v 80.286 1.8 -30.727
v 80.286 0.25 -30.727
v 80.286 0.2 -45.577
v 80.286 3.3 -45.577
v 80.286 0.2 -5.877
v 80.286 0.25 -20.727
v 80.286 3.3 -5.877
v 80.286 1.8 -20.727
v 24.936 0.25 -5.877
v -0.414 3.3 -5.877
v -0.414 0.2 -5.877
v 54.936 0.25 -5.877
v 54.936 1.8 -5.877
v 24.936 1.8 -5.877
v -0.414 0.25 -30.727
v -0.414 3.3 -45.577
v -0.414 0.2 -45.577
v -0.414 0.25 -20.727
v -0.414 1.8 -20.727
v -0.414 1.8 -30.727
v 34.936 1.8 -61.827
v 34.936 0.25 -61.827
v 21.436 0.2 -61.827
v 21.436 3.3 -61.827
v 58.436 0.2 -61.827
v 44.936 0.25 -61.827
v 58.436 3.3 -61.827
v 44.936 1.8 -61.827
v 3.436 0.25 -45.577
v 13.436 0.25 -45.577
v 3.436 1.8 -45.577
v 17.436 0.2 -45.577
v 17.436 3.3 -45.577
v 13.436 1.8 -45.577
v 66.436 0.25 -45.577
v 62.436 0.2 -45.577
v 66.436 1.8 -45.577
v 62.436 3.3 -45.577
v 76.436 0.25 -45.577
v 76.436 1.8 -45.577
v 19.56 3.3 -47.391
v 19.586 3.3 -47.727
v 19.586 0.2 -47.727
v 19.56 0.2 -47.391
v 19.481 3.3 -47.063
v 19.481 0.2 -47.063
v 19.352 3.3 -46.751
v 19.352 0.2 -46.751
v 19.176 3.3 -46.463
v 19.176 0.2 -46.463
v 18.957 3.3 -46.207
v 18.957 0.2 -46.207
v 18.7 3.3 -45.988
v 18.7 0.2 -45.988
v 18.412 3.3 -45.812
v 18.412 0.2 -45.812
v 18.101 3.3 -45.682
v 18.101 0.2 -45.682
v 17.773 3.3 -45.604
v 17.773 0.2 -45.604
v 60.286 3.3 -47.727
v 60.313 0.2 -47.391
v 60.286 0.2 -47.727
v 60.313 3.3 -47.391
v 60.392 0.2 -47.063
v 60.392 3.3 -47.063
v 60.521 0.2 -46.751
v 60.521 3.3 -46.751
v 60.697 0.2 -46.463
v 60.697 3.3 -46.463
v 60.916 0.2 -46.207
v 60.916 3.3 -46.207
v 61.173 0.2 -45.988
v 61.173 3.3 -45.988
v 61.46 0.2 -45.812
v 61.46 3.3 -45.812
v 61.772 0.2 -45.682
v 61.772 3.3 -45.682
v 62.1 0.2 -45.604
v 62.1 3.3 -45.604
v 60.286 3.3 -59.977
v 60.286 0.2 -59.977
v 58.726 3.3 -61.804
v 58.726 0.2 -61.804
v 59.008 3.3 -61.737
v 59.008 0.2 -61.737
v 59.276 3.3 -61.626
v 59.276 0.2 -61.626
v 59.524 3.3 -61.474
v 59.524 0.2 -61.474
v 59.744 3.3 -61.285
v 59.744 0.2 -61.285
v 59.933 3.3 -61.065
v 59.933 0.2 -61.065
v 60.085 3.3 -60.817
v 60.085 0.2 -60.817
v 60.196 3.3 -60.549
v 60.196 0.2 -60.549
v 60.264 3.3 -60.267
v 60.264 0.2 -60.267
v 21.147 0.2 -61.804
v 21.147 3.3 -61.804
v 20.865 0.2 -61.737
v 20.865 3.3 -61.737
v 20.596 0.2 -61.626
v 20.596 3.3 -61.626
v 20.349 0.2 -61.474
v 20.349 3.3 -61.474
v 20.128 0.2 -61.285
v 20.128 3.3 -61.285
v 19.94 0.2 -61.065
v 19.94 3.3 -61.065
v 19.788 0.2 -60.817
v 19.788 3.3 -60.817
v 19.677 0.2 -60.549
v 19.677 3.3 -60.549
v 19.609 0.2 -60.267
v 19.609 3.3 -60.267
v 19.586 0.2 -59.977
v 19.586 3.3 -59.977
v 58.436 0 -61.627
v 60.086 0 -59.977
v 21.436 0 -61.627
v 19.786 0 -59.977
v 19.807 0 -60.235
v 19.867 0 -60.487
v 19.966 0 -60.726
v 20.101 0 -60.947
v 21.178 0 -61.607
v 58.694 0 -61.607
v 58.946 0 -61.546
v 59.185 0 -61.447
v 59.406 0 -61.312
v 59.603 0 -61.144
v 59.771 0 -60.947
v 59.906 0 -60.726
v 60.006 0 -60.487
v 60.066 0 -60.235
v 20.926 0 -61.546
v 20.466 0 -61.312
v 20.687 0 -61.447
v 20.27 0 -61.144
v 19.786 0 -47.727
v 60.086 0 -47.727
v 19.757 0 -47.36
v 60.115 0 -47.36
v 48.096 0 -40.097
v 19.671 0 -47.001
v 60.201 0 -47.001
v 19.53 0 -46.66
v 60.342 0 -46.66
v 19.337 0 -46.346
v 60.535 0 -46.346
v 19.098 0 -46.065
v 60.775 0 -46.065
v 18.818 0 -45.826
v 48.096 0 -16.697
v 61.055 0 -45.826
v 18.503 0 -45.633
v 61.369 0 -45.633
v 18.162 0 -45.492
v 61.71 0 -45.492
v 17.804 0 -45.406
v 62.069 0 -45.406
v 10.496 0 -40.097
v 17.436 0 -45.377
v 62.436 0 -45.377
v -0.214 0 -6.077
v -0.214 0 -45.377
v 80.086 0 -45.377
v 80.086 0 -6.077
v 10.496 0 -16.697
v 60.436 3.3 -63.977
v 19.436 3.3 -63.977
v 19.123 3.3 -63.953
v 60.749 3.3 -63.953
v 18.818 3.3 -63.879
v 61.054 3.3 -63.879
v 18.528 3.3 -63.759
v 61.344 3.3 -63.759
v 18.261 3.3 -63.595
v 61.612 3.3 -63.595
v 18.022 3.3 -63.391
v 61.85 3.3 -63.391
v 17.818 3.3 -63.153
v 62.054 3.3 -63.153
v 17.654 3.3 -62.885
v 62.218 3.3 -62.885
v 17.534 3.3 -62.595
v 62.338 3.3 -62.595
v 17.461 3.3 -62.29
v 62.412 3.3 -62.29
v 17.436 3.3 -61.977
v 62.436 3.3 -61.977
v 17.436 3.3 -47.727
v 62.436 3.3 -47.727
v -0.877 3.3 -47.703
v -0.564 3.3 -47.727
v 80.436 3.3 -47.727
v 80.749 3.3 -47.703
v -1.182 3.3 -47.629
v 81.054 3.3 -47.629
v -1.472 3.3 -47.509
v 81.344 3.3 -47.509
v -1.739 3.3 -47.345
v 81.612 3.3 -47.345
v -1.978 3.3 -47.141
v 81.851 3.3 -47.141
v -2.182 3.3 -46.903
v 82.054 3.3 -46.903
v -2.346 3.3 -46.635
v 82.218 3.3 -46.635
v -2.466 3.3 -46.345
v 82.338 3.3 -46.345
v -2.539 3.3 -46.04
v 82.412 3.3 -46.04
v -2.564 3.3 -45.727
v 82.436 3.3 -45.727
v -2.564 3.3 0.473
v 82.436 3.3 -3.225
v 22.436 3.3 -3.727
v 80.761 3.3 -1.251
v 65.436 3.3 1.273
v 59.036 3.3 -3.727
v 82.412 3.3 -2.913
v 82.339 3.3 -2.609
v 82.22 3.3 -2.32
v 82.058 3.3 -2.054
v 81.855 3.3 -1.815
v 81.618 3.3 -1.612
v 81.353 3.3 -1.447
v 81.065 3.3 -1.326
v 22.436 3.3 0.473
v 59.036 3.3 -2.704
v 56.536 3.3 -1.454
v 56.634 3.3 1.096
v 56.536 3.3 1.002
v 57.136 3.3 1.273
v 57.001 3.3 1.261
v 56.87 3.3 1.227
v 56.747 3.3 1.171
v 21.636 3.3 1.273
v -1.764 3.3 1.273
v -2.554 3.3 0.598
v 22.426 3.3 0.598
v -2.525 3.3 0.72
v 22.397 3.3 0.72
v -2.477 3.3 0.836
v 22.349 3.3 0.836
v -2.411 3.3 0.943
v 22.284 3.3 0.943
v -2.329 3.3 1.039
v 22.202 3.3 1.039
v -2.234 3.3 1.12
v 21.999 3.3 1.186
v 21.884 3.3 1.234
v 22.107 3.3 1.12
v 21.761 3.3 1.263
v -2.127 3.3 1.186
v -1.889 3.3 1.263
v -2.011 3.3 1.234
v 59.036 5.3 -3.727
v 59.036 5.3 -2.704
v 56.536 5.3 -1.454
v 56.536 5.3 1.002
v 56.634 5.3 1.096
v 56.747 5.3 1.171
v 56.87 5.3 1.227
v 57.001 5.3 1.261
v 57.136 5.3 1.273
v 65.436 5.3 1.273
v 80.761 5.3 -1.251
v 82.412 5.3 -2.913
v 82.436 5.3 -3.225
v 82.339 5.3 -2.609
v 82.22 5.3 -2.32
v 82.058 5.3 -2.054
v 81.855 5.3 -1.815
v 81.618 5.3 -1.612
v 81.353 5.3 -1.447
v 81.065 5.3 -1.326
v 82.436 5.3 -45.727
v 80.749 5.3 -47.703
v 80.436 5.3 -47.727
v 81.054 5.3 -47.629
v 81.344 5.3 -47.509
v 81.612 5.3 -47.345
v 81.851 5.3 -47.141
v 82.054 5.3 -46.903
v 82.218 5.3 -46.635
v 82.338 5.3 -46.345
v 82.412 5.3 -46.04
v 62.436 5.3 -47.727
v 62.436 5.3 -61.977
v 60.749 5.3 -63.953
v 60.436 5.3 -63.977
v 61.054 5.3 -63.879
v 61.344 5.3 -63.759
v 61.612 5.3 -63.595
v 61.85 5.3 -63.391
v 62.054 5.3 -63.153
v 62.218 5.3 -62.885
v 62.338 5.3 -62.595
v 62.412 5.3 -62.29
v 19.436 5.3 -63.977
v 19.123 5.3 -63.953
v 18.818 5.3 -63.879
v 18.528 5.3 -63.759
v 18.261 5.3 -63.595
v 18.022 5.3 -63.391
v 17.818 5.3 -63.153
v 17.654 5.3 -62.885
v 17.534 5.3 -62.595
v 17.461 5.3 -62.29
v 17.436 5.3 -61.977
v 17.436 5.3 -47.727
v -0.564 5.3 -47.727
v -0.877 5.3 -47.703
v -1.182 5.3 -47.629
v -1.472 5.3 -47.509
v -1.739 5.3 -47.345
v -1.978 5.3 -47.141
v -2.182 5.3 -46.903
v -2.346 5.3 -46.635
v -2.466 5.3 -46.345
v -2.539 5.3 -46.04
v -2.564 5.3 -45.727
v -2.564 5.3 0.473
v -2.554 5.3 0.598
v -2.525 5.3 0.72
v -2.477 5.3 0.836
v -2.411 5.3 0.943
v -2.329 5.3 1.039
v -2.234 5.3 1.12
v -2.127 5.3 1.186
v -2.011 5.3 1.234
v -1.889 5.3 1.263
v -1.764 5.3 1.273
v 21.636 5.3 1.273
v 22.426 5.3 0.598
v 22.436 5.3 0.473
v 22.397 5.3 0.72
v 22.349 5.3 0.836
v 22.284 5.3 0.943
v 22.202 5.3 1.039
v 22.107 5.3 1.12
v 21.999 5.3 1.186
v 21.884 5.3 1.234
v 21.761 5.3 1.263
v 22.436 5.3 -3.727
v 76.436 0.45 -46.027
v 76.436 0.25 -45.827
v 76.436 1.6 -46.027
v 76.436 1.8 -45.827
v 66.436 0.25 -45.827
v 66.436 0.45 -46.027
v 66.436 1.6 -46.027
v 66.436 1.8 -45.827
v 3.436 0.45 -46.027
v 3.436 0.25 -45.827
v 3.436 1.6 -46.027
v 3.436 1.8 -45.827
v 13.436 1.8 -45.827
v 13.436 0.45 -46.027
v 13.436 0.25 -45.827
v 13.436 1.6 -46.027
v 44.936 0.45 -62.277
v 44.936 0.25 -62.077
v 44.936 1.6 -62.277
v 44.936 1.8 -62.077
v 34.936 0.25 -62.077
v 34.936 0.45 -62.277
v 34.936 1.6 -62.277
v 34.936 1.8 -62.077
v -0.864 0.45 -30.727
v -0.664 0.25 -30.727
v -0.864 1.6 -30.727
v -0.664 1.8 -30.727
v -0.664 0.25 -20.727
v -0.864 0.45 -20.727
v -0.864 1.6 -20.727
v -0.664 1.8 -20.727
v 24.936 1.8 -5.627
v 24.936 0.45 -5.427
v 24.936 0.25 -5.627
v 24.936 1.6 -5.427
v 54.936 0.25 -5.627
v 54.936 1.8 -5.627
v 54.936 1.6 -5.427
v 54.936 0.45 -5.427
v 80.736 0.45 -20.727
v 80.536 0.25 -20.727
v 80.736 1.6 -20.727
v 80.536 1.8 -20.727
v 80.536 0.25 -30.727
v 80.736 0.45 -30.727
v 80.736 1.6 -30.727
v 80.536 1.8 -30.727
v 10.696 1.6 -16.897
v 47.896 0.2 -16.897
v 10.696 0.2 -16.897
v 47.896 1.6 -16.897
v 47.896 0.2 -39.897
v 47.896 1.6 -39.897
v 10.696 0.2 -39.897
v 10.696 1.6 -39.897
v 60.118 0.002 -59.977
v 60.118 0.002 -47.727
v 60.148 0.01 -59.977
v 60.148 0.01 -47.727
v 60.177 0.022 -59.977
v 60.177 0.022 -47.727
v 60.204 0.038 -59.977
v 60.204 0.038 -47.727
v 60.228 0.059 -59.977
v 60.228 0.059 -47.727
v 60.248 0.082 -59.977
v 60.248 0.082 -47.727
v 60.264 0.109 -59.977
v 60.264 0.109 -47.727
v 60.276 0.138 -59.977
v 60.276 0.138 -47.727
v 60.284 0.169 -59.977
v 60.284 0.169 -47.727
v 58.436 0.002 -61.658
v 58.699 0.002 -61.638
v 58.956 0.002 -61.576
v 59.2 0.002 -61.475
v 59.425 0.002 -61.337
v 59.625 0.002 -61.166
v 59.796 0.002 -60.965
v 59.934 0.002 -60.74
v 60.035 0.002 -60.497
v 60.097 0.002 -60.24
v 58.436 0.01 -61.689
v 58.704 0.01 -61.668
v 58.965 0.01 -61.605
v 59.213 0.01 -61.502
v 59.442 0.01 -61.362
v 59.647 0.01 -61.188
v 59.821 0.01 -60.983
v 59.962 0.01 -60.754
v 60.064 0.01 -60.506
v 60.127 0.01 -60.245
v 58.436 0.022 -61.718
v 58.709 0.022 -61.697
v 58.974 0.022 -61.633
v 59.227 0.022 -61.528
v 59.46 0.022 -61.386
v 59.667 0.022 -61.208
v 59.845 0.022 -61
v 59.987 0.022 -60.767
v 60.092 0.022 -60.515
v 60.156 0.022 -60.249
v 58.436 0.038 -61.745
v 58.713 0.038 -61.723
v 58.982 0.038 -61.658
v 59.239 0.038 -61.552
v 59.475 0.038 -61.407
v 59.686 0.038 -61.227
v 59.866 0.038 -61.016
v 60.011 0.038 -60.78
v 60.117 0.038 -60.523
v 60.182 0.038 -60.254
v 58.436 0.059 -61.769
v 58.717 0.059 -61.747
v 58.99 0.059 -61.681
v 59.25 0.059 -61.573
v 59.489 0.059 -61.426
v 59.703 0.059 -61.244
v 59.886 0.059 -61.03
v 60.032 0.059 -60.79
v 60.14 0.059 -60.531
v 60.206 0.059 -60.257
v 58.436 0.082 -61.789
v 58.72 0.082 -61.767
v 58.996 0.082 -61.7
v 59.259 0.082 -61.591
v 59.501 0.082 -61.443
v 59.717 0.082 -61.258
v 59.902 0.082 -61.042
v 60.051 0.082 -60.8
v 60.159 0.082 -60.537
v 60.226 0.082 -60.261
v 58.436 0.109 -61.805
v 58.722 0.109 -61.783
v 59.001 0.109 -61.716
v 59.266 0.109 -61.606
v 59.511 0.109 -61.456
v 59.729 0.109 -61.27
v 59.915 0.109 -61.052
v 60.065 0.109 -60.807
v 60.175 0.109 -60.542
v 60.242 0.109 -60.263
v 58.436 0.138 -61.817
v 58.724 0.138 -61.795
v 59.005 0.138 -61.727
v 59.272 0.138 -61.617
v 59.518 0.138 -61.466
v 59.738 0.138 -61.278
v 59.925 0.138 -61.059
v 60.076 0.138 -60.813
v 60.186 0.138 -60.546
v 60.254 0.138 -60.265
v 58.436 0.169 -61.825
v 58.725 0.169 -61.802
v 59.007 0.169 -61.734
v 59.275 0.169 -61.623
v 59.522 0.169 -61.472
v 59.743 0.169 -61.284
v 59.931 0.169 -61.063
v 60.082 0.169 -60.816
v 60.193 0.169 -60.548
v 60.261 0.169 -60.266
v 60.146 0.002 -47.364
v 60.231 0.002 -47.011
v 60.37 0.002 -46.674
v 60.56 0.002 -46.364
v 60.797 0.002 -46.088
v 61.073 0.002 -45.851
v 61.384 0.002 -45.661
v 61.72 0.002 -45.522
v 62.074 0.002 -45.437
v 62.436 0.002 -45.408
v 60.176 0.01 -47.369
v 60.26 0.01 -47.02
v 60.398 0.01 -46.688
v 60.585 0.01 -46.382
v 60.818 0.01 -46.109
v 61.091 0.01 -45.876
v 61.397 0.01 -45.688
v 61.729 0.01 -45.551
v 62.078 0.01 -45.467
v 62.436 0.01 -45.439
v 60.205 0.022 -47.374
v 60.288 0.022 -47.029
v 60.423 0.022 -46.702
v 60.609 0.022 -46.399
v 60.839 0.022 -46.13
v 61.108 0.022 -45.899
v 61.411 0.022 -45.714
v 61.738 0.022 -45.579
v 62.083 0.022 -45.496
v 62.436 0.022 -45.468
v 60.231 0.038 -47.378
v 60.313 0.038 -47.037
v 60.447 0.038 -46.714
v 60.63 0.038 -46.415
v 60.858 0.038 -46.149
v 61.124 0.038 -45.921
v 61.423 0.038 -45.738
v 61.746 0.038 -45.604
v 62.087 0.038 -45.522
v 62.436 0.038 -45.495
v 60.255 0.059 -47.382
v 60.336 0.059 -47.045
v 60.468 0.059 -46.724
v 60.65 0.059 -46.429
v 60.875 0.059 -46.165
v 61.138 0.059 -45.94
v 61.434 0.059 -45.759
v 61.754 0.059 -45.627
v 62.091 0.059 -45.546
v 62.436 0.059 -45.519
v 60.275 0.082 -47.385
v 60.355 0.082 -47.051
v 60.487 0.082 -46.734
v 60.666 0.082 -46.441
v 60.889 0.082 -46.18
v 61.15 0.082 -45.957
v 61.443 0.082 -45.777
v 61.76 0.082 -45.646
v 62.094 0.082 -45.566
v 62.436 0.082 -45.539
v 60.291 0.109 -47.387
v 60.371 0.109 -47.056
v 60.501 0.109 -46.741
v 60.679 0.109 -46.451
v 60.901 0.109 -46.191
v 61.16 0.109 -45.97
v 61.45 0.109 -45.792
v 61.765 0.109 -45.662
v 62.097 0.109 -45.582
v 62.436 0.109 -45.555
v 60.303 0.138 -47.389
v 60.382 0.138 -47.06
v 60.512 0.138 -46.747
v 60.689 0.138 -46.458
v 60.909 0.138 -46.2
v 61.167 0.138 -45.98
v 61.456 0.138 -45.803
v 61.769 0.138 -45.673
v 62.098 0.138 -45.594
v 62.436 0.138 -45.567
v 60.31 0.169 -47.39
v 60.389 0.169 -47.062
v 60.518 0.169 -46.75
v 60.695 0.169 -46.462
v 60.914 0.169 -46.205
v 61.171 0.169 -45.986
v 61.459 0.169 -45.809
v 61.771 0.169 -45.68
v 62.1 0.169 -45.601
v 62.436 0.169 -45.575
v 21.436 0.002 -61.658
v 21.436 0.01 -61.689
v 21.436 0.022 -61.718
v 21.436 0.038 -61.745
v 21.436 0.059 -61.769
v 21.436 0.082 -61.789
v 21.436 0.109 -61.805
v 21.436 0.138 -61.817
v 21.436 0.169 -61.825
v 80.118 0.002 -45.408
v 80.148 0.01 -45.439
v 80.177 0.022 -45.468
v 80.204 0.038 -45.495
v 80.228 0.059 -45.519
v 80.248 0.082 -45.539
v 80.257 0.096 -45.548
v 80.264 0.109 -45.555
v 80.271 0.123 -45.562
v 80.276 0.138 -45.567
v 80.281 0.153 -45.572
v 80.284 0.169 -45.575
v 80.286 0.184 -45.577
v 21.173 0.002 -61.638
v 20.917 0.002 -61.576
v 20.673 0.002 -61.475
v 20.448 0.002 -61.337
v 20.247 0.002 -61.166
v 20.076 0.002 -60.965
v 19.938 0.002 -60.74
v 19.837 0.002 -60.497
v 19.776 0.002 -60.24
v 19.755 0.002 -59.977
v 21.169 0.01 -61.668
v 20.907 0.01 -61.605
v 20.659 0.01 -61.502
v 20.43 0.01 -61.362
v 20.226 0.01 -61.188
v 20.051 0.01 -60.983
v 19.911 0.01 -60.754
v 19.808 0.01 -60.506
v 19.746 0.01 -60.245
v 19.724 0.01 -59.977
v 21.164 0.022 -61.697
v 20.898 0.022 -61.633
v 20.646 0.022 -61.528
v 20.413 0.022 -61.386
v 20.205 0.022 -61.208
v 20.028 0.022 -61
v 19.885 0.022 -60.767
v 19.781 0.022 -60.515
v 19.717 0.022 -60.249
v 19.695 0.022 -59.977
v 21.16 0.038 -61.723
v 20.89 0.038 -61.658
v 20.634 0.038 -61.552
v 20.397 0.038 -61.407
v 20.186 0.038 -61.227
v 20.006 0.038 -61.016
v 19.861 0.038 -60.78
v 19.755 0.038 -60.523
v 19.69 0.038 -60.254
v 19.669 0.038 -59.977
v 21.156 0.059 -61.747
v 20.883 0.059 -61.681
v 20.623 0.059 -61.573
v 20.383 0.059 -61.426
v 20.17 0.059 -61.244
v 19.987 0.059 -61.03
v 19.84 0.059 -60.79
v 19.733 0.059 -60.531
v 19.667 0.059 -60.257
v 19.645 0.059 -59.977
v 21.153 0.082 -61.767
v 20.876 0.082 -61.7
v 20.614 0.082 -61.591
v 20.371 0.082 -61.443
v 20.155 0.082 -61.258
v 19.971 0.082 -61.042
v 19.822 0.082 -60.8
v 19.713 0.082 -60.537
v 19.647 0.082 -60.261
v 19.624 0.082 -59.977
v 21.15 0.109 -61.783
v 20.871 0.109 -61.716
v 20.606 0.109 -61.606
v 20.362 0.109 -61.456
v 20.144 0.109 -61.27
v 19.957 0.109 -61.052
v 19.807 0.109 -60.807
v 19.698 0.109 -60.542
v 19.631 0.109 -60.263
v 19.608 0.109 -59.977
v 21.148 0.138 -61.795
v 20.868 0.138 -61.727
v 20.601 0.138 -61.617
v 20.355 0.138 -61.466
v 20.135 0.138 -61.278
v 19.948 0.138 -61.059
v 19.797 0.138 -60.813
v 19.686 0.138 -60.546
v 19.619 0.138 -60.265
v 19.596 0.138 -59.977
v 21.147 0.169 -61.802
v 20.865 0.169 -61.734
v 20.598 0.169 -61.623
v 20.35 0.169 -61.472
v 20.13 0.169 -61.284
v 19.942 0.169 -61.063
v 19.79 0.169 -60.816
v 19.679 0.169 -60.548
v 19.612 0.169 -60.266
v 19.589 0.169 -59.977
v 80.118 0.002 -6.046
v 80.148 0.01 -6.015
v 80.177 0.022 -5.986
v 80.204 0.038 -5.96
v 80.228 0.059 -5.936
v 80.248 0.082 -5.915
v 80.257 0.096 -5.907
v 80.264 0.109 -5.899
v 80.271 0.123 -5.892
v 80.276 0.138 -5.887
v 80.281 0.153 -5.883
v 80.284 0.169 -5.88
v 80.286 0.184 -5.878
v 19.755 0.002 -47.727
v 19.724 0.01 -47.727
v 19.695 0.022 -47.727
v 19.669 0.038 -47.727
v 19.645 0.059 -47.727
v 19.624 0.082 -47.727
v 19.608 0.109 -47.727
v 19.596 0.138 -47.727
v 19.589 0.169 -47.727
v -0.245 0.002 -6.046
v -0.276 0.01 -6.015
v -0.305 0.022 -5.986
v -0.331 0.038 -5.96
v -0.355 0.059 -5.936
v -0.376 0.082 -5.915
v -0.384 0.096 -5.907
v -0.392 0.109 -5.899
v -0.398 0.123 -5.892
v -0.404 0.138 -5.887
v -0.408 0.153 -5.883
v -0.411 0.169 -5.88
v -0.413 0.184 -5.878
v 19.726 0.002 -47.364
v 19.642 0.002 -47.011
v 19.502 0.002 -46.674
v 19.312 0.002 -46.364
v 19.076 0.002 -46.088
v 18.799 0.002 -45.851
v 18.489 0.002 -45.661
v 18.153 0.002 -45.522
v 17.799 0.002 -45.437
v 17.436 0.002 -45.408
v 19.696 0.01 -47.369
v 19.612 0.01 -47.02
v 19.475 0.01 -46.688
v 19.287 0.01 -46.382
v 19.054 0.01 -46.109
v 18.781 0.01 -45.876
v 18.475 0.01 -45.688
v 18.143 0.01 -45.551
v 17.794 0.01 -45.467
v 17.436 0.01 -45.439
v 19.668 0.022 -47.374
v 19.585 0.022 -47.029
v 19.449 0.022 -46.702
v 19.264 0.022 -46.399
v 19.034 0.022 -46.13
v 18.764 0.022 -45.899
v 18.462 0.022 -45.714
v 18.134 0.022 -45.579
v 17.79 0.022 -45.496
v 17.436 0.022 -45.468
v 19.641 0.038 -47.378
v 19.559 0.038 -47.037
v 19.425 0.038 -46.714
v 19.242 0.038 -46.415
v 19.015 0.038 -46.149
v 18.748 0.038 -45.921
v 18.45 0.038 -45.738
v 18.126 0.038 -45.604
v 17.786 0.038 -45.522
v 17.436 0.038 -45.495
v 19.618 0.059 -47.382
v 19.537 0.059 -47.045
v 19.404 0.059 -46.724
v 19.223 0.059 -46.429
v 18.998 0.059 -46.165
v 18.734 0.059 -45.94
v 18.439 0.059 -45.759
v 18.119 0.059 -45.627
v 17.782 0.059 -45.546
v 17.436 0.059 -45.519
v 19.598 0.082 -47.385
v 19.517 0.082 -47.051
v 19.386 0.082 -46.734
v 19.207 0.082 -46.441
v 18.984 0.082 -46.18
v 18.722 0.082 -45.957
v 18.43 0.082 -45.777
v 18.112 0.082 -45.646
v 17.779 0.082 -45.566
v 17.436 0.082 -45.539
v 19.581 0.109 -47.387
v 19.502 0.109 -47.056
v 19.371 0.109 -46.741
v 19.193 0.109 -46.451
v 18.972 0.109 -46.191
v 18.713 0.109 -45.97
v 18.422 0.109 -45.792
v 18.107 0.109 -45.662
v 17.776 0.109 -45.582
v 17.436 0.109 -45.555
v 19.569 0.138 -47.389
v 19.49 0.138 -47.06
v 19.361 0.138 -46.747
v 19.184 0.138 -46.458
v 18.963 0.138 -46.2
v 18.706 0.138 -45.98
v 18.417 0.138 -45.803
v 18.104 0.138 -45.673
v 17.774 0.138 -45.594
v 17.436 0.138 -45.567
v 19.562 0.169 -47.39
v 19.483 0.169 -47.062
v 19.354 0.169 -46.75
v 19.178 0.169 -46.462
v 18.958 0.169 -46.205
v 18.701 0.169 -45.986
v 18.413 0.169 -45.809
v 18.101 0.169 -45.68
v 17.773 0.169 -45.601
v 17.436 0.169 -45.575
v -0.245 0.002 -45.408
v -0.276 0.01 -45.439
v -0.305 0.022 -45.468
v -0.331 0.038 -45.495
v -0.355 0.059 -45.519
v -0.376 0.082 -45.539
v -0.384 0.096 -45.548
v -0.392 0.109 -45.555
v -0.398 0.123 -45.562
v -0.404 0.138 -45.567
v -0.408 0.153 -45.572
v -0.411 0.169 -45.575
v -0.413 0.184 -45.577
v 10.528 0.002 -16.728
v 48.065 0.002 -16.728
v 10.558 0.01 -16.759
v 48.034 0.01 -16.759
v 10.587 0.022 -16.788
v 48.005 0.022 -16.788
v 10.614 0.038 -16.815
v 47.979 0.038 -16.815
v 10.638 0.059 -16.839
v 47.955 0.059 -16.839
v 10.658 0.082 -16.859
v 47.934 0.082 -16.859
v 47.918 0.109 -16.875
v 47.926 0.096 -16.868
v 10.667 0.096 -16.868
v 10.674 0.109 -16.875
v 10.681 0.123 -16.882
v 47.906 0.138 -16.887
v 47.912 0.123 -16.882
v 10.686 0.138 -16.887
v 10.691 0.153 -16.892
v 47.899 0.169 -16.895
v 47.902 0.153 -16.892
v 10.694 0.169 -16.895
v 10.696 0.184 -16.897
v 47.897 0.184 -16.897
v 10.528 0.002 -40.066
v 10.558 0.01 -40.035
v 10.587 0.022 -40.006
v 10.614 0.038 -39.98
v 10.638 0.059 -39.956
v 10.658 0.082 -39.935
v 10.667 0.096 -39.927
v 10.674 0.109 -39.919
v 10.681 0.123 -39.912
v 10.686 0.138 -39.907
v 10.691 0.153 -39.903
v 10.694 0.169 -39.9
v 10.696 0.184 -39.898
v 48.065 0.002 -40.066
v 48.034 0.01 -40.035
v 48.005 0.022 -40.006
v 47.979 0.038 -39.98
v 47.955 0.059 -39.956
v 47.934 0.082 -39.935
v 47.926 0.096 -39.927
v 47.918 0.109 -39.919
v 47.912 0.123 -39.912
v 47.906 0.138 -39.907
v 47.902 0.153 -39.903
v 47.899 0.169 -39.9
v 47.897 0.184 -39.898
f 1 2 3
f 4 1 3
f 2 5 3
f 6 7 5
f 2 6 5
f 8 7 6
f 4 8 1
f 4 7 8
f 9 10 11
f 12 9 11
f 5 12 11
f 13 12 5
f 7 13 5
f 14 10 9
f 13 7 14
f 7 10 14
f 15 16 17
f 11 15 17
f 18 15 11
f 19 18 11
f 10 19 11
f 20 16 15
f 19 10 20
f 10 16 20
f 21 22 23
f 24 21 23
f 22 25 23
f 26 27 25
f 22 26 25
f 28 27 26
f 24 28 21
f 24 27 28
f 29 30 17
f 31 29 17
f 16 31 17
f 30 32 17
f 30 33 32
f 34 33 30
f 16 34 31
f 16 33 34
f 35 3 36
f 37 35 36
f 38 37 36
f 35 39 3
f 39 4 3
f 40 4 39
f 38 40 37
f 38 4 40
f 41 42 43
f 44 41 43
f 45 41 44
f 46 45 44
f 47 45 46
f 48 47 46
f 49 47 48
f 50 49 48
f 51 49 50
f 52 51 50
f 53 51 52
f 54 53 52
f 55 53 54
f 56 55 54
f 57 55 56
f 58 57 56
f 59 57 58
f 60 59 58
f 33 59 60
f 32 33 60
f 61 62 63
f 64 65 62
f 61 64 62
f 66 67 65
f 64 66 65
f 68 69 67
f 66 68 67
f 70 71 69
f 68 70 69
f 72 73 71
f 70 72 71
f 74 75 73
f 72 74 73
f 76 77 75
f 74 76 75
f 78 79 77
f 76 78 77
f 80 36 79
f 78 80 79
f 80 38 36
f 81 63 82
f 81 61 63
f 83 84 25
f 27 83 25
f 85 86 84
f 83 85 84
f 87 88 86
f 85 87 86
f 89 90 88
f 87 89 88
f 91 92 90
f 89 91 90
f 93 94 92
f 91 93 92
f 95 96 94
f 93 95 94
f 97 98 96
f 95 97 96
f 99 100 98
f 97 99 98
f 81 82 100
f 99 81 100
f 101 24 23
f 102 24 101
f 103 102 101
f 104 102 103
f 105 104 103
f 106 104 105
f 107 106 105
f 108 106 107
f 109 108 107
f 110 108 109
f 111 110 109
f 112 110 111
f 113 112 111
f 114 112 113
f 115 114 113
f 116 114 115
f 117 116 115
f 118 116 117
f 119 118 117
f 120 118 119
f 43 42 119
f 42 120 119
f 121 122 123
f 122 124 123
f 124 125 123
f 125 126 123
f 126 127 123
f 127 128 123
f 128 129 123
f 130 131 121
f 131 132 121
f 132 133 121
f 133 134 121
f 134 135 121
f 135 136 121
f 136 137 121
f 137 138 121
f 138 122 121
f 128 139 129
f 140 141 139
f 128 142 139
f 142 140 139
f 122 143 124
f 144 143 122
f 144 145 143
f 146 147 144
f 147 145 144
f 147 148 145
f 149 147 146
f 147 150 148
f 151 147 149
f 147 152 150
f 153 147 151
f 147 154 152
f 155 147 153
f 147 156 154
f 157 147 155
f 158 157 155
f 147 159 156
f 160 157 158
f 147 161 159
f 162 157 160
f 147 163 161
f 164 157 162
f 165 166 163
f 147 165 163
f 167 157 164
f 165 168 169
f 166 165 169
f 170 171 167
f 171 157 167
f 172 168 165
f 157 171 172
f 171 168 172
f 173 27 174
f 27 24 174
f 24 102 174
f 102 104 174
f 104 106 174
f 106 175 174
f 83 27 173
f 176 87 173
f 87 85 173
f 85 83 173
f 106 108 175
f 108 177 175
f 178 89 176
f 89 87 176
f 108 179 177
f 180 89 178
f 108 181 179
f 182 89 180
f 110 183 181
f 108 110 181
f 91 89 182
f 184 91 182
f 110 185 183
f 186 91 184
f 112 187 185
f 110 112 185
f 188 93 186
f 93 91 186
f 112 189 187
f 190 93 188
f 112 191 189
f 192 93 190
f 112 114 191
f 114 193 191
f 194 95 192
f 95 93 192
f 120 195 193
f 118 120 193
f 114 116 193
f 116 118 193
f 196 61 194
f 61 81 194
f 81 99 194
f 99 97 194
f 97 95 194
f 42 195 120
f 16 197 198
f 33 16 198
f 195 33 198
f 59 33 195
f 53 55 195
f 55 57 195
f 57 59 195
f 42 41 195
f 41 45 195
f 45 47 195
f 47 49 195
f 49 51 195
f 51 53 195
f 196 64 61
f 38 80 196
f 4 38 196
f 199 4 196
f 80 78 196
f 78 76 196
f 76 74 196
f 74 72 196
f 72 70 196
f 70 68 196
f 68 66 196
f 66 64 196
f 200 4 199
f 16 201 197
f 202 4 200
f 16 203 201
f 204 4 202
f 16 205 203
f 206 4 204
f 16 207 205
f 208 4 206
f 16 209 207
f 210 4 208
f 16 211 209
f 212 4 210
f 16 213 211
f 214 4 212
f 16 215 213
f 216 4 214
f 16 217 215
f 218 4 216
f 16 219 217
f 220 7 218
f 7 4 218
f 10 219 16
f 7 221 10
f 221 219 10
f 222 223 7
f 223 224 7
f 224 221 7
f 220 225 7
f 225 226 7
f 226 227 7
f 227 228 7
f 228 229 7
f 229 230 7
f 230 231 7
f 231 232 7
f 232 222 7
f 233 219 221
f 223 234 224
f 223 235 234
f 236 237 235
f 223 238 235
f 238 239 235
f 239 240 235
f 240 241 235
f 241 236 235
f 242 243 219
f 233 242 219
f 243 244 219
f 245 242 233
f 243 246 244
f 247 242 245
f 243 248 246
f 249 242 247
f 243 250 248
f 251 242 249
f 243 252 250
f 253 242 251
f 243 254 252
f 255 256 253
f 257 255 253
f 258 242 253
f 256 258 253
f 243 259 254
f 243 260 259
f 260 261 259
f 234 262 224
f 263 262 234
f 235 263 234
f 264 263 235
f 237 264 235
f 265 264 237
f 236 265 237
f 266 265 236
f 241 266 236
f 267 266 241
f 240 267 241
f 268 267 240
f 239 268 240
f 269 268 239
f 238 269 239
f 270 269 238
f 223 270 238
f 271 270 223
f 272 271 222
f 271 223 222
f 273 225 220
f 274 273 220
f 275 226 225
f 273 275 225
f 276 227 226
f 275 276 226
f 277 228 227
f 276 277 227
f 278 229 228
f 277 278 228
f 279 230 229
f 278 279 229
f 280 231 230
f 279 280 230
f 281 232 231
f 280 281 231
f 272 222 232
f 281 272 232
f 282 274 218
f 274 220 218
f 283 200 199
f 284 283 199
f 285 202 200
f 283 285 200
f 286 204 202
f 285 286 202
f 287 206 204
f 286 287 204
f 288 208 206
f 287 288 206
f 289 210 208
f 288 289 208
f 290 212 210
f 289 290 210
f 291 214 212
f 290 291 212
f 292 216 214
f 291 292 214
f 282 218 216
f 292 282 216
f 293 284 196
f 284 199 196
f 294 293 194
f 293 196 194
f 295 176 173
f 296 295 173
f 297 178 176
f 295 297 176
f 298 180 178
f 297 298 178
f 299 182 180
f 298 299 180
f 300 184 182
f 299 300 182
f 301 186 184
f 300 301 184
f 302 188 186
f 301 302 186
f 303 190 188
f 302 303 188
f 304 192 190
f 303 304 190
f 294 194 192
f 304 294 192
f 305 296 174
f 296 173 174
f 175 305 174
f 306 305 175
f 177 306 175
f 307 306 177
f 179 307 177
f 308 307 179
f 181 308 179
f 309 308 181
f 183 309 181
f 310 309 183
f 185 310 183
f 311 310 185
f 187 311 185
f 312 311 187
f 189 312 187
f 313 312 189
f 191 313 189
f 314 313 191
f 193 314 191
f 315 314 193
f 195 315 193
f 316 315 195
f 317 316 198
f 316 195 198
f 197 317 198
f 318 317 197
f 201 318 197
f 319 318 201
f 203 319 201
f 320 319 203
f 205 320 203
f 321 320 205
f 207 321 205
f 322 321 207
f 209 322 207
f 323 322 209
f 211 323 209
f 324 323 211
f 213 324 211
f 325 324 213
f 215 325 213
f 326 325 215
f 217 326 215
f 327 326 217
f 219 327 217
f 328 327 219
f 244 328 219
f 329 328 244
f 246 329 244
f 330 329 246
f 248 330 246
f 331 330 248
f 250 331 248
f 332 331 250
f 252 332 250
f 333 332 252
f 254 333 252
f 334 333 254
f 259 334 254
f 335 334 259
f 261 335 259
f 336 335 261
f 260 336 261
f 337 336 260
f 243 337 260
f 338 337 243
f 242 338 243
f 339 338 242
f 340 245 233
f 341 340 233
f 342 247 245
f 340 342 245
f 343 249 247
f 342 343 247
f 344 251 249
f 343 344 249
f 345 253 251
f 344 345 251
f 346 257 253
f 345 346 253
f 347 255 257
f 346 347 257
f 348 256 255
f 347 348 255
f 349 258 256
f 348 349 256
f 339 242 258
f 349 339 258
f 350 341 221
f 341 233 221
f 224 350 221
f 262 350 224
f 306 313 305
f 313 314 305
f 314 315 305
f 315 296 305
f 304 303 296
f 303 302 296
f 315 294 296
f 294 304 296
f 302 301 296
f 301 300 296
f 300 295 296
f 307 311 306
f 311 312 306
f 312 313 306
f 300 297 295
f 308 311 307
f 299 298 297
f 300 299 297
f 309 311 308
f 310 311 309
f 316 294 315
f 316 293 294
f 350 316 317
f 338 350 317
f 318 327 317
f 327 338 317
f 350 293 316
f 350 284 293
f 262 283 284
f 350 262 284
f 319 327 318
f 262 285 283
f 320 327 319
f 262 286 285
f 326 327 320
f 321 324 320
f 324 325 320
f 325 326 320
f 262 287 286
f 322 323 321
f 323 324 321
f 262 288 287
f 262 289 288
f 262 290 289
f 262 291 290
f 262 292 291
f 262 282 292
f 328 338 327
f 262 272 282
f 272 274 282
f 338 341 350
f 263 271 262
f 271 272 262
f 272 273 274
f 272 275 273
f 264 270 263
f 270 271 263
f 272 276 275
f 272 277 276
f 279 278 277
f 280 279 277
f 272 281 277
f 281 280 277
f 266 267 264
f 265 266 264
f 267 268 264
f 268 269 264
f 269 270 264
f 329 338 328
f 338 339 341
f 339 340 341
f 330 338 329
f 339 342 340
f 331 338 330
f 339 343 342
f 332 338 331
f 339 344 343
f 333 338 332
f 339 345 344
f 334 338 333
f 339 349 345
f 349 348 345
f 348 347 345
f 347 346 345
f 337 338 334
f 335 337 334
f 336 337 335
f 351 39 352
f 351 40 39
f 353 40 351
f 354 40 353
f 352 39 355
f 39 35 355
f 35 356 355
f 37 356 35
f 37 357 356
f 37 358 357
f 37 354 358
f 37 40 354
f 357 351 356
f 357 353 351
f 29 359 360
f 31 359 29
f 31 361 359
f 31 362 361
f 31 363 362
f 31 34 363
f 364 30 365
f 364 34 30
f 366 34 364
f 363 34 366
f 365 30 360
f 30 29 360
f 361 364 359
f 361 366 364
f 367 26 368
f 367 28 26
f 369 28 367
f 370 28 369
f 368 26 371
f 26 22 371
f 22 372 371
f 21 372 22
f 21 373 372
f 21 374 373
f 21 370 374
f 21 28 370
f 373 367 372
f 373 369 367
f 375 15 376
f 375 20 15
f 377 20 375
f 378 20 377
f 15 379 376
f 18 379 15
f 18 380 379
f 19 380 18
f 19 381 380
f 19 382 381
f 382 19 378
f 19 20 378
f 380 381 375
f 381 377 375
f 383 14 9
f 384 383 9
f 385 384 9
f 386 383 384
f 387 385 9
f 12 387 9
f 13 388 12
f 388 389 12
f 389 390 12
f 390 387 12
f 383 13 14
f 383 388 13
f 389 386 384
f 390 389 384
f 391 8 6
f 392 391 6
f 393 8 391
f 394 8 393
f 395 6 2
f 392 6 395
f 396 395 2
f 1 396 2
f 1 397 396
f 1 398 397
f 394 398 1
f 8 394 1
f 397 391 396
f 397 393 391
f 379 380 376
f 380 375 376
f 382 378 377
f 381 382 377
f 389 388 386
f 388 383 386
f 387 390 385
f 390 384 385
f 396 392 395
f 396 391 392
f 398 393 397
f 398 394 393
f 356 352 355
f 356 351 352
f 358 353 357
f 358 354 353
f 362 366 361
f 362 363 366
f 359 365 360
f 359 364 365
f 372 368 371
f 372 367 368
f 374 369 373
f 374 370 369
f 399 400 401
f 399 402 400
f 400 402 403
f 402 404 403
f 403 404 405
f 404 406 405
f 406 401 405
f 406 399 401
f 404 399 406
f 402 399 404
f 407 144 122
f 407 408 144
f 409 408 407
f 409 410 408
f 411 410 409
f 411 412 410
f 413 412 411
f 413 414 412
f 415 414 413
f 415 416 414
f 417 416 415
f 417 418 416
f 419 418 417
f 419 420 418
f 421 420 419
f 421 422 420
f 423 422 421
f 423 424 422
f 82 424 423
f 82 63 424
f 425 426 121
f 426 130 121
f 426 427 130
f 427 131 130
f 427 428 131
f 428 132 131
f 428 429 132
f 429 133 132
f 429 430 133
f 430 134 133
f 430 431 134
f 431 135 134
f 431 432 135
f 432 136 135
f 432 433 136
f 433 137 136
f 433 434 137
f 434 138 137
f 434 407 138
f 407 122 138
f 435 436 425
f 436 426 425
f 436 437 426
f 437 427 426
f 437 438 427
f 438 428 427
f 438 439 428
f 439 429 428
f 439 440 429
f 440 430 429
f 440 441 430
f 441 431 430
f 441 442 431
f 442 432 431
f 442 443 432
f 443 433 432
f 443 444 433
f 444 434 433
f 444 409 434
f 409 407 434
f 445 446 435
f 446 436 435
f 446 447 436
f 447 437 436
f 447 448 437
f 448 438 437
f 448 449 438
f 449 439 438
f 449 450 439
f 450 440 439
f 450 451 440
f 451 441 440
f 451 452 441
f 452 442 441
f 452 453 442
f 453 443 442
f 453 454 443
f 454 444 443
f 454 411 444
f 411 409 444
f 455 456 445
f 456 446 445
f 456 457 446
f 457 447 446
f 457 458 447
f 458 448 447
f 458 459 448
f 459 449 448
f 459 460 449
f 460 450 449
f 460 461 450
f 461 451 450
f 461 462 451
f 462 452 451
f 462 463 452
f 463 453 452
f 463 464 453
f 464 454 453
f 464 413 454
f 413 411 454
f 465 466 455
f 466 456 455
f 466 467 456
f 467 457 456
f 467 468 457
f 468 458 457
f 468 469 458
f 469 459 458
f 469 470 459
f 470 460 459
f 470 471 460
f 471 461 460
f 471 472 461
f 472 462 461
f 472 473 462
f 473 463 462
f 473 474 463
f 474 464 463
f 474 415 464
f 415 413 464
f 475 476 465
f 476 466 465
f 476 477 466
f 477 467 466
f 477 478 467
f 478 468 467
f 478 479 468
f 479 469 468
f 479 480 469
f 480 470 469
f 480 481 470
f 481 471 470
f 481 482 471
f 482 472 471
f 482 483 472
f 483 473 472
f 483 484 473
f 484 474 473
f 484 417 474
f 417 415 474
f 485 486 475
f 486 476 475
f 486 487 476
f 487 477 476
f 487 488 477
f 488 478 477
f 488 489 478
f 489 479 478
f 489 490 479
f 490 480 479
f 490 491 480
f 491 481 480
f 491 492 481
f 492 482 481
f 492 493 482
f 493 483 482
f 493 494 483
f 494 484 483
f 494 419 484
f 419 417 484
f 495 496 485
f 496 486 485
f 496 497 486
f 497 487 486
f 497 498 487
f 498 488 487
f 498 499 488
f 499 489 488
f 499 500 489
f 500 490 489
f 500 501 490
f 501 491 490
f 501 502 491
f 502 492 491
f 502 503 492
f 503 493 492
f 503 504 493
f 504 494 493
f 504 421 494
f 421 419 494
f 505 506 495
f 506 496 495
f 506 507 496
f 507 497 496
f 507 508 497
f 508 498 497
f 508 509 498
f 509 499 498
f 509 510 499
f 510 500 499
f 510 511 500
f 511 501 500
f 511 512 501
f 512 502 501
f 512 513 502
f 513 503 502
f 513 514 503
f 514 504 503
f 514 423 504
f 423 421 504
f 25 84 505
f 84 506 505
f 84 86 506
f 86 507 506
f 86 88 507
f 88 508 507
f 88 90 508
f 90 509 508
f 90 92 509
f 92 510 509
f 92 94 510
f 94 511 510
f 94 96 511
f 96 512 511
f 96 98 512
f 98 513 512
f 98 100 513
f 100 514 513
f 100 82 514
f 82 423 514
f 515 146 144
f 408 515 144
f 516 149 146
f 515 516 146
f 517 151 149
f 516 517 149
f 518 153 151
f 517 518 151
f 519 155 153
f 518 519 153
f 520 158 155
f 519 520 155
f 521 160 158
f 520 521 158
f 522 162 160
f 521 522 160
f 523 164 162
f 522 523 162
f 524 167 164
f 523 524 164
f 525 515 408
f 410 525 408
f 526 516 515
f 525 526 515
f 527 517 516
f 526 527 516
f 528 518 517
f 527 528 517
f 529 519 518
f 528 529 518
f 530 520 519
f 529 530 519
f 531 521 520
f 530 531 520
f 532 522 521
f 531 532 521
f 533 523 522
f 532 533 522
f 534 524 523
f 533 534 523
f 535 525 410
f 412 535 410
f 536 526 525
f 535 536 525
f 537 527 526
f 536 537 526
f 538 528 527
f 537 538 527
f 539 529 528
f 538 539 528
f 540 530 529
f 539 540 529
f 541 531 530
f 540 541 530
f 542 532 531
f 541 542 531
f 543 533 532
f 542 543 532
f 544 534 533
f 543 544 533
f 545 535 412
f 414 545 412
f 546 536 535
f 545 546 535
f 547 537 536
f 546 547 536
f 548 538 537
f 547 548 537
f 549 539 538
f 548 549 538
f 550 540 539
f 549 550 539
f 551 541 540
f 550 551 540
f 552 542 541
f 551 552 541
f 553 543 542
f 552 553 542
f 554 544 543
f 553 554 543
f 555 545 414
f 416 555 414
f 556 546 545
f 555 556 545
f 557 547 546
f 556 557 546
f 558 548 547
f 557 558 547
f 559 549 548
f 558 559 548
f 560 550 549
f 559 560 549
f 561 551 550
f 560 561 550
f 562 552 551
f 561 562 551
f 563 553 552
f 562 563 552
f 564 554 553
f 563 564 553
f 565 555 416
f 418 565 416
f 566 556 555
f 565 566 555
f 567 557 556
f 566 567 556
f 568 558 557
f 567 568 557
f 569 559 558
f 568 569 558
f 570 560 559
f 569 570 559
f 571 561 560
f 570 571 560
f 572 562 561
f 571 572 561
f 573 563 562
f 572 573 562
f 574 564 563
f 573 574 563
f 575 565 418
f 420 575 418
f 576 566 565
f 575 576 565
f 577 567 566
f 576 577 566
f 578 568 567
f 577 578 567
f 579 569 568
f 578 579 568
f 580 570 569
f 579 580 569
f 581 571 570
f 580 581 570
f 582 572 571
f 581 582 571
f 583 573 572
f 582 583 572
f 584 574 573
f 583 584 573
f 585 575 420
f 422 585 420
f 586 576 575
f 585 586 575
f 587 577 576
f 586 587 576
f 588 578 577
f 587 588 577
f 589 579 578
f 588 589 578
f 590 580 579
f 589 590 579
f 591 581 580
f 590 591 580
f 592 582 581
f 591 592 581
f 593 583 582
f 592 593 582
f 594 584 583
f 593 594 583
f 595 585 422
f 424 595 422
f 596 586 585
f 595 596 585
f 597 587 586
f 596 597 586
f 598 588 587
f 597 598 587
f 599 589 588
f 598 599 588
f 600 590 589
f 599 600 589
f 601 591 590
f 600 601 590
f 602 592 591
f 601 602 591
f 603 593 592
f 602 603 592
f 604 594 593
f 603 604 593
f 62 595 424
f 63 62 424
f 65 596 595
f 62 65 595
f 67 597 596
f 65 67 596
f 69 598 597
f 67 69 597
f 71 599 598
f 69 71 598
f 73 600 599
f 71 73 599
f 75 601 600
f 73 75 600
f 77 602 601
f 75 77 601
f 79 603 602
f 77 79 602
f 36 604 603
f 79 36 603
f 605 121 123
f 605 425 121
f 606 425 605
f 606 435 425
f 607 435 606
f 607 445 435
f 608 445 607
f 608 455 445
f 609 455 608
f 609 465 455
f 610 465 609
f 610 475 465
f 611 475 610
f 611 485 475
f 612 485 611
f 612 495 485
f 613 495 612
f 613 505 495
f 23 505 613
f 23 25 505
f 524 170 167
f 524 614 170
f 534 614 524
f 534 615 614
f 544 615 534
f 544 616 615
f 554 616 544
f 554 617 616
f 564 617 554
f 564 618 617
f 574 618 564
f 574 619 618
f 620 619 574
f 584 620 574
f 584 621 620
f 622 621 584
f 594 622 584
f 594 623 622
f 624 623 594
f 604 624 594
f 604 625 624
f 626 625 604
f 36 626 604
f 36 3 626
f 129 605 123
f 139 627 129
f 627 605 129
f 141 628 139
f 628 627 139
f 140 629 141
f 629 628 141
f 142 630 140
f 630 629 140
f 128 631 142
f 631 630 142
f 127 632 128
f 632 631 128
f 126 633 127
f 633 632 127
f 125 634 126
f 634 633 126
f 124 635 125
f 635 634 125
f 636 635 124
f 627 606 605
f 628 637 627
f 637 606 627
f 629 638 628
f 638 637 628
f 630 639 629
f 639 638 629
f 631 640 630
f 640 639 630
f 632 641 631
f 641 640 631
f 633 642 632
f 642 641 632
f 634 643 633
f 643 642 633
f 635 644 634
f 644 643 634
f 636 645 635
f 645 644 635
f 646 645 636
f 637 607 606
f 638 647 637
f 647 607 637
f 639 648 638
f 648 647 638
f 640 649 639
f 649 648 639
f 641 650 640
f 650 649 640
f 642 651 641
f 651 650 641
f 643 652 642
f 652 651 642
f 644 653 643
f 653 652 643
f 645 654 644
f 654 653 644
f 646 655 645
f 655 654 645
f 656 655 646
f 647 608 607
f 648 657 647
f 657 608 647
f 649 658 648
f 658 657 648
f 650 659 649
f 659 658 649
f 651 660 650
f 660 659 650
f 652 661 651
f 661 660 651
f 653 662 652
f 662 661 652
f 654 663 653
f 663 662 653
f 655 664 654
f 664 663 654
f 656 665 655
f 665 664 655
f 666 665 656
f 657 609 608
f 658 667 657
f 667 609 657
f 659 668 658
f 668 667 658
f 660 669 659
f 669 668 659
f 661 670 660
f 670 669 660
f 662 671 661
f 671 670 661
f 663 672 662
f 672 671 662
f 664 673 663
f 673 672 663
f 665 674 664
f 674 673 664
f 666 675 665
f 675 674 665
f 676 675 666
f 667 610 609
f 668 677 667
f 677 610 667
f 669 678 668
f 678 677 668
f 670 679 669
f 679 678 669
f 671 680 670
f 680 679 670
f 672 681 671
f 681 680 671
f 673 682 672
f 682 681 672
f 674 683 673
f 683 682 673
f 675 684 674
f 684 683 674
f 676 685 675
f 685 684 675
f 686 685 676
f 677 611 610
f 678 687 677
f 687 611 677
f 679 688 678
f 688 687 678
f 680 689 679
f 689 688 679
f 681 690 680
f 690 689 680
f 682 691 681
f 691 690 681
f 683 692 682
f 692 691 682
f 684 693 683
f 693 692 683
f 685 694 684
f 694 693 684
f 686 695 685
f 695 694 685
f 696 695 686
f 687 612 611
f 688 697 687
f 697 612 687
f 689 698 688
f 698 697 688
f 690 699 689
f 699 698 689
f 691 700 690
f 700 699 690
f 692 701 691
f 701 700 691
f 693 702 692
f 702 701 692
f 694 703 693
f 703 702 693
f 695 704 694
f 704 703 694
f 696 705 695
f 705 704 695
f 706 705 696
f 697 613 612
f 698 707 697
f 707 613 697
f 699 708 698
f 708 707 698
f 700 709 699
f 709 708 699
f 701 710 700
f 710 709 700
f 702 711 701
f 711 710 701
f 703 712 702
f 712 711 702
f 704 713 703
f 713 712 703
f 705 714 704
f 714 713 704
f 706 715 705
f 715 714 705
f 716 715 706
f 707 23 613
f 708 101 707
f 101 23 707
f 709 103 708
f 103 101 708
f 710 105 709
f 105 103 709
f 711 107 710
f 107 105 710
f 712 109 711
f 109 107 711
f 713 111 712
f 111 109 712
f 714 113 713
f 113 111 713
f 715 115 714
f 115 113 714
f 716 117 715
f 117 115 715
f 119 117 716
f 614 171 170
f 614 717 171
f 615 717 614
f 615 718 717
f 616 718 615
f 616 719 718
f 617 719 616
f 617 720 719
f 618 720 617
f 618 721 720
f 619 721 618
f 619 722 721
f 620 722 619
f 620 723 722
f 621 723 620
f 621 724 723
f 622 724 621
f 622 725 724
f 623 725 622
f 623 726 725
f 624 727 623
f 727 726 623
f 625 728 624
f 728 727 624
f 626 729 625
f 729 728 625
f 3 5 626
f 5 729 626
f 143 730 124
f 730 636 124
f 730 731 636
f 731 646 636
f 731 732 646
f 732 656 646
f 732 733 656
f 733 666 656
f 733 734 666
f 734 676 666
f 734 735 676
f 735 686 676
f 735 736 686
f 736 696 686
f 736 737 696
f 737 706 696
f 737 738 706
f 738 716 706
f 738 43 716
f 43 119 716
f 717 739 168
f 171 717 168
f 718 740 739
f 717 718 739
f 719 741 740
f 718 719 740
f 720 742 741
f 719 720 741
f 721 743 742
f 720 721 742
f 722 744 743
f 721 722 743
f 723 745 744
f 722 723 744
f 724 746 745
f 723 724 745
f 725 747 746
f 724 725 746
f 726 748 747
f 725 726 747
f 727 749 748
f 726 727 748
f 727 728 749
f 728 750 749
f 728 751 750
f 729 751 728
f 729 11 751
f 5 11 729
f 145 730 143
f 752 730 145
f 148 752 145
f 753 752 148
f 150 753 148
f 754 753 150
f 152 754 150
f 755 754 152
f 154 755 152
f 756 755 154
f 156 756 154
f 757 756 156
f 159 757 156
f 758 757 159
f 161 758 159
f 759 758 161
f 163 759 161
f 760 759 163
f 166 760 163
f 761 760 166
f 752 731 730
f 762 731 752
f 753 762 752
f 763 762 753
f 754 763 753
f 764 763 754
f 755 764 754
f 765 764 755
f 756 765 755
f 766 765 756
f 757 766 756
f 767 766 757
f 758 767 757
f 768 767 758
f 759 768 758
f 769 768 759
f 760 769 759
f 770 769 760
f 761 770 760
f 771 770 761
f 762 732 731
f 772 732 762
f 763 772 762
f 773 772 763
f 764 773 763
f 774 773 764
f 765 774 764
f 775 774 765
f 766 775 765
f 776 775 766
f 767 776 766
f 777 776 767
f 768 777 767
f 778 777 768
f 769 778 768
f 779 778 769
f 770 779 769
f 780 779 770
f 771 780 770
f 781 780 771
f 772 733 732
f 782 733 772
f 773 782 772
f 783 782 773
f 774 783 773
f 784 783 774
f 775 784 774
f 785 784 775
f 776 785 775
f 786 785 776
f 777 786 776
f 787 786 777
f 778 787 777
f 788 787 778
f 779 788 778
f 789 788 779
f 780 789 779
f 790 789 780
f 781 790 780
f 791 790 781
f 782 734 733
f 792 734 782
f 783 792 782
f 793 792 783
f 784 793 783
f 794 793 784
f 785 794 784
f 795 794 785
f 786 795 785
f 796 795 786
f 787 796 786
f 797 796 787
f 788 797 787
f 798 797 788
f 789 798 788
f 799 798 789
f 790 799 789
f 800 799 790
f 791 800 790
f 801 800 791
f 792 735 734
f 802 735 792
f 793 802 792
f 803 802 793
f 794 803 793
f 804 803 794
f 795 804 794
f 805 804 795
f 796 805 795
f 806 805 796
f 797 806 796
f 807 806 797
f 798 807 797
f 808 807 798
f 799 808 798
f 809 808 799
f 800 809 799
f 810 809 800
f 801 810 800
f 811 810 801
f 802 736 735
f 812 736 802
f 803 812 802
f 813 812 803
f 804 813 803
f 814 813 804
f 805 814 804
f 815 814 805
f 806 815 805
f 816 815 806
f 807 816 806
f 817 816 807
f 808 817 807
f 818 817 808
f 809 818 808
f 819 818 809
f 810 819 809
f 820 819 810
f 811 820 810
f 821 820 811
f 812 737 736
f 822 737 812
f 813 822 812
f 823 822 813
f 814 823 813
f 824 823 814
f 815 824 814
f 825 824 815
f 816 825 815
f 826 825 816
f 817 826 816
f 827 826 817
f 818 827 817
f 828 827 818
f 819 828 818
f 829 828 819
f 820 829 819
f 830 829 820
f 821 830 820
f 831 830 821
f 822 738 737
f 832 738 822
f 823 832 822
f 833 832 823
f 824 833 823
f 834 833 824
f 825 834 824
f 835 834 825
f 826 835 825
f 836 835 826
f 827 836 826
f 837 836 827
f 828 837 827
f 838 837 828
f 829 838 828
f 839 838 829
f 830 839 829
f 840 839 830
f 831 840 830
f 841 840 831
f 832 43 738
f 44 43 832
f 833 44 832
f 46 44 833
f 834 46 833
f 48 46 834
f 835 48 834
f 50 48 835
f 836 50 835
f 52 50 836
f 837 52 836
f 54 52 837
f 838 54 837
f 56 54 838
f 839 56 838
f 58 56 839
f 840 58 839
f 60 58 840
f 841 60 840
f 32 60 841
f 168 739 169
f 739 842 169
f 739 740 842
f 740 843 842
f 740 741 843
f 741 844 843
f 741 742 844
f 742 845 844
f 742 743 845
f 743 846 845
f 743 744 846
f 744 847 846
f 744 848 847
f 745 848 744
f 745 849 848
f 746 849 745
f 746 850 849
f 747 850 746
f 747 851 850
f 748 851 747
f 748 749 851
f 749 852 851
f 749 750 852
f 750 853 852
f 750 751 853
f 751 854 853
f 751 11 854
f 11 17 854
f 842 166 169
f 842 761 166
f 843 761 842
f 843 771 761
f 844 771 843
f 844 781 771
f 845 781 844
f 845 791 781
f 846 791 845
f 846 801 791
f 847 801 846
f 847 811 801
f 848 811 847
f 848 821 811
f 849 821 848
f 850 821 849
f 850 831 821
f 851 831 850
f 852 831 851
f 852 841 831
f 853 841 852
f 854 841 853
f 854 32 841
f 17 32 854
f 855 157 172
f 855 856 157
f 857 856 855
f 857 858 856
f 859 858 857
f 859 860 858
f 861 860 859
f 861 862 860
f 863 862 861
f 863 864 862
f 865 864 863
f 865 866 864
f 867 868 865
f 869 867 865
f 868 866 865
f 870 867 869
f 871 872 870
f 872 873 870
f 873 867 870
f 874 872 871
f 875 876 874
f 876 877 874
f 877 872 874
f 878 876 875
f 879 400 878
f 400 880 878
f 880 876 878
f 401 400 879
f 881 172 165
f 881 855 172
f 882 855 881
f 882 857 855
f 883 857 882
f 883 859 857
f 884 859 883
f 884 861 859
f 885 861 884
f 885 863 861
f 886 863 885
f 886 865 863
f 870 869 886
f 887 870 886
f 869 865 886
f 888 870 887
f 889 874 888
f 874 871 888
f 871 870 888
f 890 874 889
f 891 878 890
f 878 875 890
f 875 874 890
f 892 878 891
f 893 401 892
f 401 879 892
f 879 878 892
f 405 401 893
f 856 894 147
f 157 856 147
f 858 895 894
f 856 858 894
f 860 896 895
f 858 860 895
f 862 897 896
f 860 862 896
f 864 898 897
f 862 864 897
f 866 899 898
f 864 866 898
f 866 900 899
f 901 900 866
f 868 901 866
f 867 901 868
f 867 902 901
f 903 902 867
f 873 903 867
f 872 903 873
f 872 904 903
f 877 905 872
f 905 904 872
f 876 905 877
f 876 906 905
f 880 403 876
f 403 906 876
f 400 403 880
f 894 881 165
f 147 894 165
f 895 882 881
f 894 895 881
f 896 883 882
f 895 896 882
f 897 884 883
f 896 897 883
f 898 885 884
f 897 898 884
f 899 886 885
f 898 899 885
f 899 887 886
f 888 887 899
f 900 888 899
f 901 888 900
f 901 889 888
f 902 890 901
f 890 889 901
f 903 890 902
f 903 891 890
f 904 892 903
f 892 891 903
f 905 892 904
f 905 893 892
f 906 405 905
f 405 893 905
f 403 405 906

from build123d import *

# Parameters (mm, degrees)
BOSS_EXTRUDE1_DEPTH = 3.3
BOSS_EXTRUDE2_DEPTH = 2
SKETCH5_W           = 10
SKETCH5_H           = 1.55
BOSS_EXTRUDE3_DEPTH = 0.45
SKETCH6_W           = 10
SKETCH6_H           = 1.55
BOSS_EXTRUDE4_DEPTH = 0.45
SKETCH7_W           = 10
SKETCH7_H           = 1.55
BOSS_EXTRUDE5_DEPTH = 0.45
SKETCH8_W           = 10
SKETCH8_H           = 1.55
BOSS_EXTRUDE6_DEPTH = 0.45
SKETCH9_W           = 30
SKETCH9_H           = 1.55
BOSS_EXTRUDE7_DEPTH = 0.45
SKETCH10_W          = 10
SKETCH10_H          = 1.55
BOSS_EXTRUDE8_DEPTH = 0.45
CHAMFER1_SIZE       = 0.2
SKETCH11_W          = 37.2
SKETCH11_H          = 23
CUT_EXTRUDE1_DEPTH  = 1.6
FILLET1_R           = 0.2


with BuildPart() as part:
    # Sketch1 → Boss-Extrude1 (new body)
    with BuildSketch(Plane(origin=(0, 0, 0), x_dir=(1, 0, 0), z_dir=(0, 1, 0))):
        with BuildLine():
            Line((19.586290833, 59.977163541), (19.586290833, 47.727163541))
            ThreePointArc((19.586290833, 47.727163541), (18.956570412, 46.206883961), (17.436290833, 45.577163541))
            Line((17.436290833, 45.577163541), (-0.413709167, 45.577163541))
            Line((-0.413709167, 45.577163541), (-0.413709167, 5.877163541))
            Line((-0.413709167, 5.877163541), (80.286290833, 5.877163541))
            Line((80.286290833, 5.877163541), (80.286290833, 45.577163541))
            Line((80.286290833, 45.577163541), (62.436290833, 45.577163541))
            ThreePointArc((62.436290833, 45.577163541), (60.916011253, 46.206883961), (60.286290833, 47.727163541))
            Line((60.286290833, 47.727163541), (60.286290833, 59.977163541))
            ThreePointArc((60.286290833, 59.977163541), (59.744438378, 61.285311086), (58.436290833, 61.827163541))
            Line((58.436290833, 61.827163541), (21.436290833, 61.827163541))
            ThreePointArc((21.436290833, 61.827163541), (20.128143288, 61.285311086), (19.586290833, 59.977163541))
        make_face()
    extrude(amount=BOSS_EXTRUDE1_DEPTH)

    # Sketch2 → Boss-Extrude2 (add)
    with BuildSketch(Plane(origin=(0, 3.3, 0), x_dir=(1, 0, 0), z_dir=(0, 1, 0))):
        with BuildLine():
            Line((57.136290833, -1.272836459), (65.436290833, -1.272836459))
            Line((65.436290833, -1.272836459), (80.761323353, 1.251286544))
            ThreePointArc((80.761323353, 1.251286544), (81.961096565, 1.930492929), (82.436290833, 3.224698275))
            Line((82.436290833, 3.224698275), (82.436290833, 45.727163541))
            ThreePointArc((82.436290833, 45.727163541), (81.850504395, 47.141377103), (80.436290833, 47.727163541))
            Line((80.436290833, 47.727163541), (66.436290833, 47.727163541))
            Line((66.436290833, 47.727163541), (62.436290833, 47.727163541))
            Line((62.436290833, 47.727163541), (62.436290833, 61.977163541))
            ThreePointArc((62.436290833, 61.977163541), (61.850504395, 63.391377103), (60.436290833, 63.977163541))
            Line((60.436290833, 63.977163541), (19.436290833, 63.977163541))
            ThreePointArc((19.436290833, 63.977163541), (18.022077271, 63.391377103), (17.436290833, 61.977163541))
            Line((17.436290833, 61.977163541), (17.436290833, 47.727163541))
            Line((17.436290833, 47.727163541), (3.436290833, 47.727163541))
            Line((3.436290833, 47.727163541), (-0.563709167, 47.727163541))
            ThreePointArc((-0.563709167, 47.727163541), (-1.977922729, 47.141377103), (-2.563709167, 45.727163541))
            Line((-2.563709167, 45.727163541), (-2.563709167, -0.472836459))
            ThreePointArc((-2.563709167, -0.472836459), (-2.329394592, -1.038521884), (-1.763709167, -1.272836459))
            Line((-1.763709167, -1.272836459), (21.636290833, -1.272836459))
            ThreePointArc((21.636290833, -1.272836459), (22.201976258, -1.038521884), (22.436290833, -0.472836459))
            Line((22.436290833, -0.472836459), (22.436290833, 3.727163541))
            Line((22.436290833, 3.727163541), (59.036290833, 3.727163541))
            Line((59.036290833, 3.727163541), (59.036290833, 2.703556743))
            Line((59.036290833, 2.703556743), (56.536290833, 1.453556743))
            Line((56.536290833, 1.453556743), (56.536290833, -1.001986721))
            ThreePointArc((56.536290833, -1.001986721), (56.807140571, -1.201986721), (57.136290833, -1.272836459))
        make_face()
    extrude(amount=BOSS_EXTRUDE2_DEPTH)

    # Sketch5 → Boss-Extrude3 (add)
    with BuildSketch(Plane(origin=(0, 0, -45.577163541), x_dir=(-1, 0, 0), z_dir=(0, 0, -1))):
        with Locations((-71.436290833, 1.025)):
            Rectangle(SKETCH5_W, SKETCH5_H)
        with Locations((-8.436290833, 1.025)):
            Rectangle(SKETCH5_W, SKETCH5_H)
    extrude(amount=BOSS_EXTRUDE3_DEPTH)

    # Sketch6 → Boss-Extrude4 (add)
    with BuildSketch(Plane(origin=(0, 0, -61.827163541), x_dir=(-1, 0, 0), z_dir=(0, 0, -1))):
        with Locations((-39.936290833, 1.025)):
            Rectangle(SKETCH6_W, SKETCH6_H)
    extrude(amount=BOSS_EXTRUDE4_DEPTH)

    # Sketch7 → Boss-Extrude5 (add)
    with BuildSketch(Plane(origin=(-0.413709167, 0, 0.363709167), x_dir=(0, 0, 1), z_dir=(-1, 0, 0))):
        with Locations((-26.090872708, 1.025)):
            Rectangle(SKETCH7_W, SKETCH7_H)
    extrude(amount=BOSS_EXTRUDE5_DEPTH)

    # Sketch8 → Boss-Extrude6 (add)
    with BuildSketch(Plane(origin=(80.286290833, 0, -80.236290833), x_dir=(0, 0, 1), z_dir=(-1, 0, 0))):
        with Locations((54.509127292, 1.025)):
            Rectangle(SKETCH8_W, SKETCH8_H)
    extrude(amount=BOSS_EXTRUDE6_DEPTH)

    # Sketch9 → Boss-Extrude7 (add)
    with BuildSketch(Plane.XY.offset(-5.877163541)):
        with Locations((39.936290833, 1.025)):
            Rectangle(SKETCH9_W, SKETCH9_H)
    extrude(amount=BOSS_EXTRUDE7_DEPTH)

    # Sketch10 → Boss-Extrude8 (add)
    with BuildSketch(Plane(origin=(80.286290833, 0, 0), x_dir=(0, 0, -1), z_dir=(1, 0, 0))):
        with Locations((25.727163541, 1.025)):
            Rectangle(SKETCH10_W, SKETCH10_H)
    extrude(amount=BOSS_EXTRUDE8_DEPTH)

    # Chamfer1
    chamfer1_edges = [part.edges().sort_by_distance(p)[0] for p in [
        (8.436290833, 1.8, -46.027163541),
        (8.436290833, 0.25, -46.027163541),
        (39.936290833, 0.25, -62.277163541),
        (39.936290833, 1.8, -62.277163541),
        (-0.863709167, 0.25, -25.727163541),
        (-0.863709167, 1.8, -25.727163541),
        (39.936290833, 1.8, -5.427163541),
        (39.936290833, 0.25, -5.427163541),
        (80.736290833, 0.25, -25.727163541),
        (80.736290833, 1.8, -25.727163541),
        (71.436290833, 0.25, -46.027163541),
        (71.436290833, 1.8, -46.027163541),
    ]]
    chamfer(chamfer1_edges, length=CHAMFER1_SIZE)

    # Sketch11 → Cut-Extrude1 (cut)
    with BuildSketch(Plane(origin=(0, 0, 0), x_dir=(-1, 0, 0), z_dir=(0, -1, 0))):
        with Locations((-29.296290833, 28.397163541)):
            Rectangle(SKETCH11_W, SKETCH11_H)
    extrude(amount=-CUT_EXTRUDE1_DEPTH, mode=Mode.SUBTRACT)

    # Fillet1
    fillet1_edges = [part.edges().sort_by_distance(p)[0] for p in [
        (19.586290833, 0, -53.852163541),
        (20.128143288, 0, -61.285311086),
        (39.936290833, 0, -61.827163541),
        (59.744438378, 0, -61.285311086),
        (60.286290833, 0, -53.852163541),
        (60.916011253, 0, -46.206883961),
        (71.361290833, 0, -45.577163541),
        (80.286290833, 0, -25.727163541),
        (39.936290833, 0, -5.877163541),
        (-0.413709167, 0, -25.727163541),
        (8.511290833, 0, -45.577163541),
        (18.956570412, 0, -46.206883961),
        (29.296290833, 0, -16.897163541),
        (10.696290833, 0, -28.397163541),
        (29.296290833, 0, -39.897163541),
        (47.896290833, 0, -28.397163541),
    ]]
    fillet(fillet1_edges, radius=FILLET1_R)


solid = part.part
